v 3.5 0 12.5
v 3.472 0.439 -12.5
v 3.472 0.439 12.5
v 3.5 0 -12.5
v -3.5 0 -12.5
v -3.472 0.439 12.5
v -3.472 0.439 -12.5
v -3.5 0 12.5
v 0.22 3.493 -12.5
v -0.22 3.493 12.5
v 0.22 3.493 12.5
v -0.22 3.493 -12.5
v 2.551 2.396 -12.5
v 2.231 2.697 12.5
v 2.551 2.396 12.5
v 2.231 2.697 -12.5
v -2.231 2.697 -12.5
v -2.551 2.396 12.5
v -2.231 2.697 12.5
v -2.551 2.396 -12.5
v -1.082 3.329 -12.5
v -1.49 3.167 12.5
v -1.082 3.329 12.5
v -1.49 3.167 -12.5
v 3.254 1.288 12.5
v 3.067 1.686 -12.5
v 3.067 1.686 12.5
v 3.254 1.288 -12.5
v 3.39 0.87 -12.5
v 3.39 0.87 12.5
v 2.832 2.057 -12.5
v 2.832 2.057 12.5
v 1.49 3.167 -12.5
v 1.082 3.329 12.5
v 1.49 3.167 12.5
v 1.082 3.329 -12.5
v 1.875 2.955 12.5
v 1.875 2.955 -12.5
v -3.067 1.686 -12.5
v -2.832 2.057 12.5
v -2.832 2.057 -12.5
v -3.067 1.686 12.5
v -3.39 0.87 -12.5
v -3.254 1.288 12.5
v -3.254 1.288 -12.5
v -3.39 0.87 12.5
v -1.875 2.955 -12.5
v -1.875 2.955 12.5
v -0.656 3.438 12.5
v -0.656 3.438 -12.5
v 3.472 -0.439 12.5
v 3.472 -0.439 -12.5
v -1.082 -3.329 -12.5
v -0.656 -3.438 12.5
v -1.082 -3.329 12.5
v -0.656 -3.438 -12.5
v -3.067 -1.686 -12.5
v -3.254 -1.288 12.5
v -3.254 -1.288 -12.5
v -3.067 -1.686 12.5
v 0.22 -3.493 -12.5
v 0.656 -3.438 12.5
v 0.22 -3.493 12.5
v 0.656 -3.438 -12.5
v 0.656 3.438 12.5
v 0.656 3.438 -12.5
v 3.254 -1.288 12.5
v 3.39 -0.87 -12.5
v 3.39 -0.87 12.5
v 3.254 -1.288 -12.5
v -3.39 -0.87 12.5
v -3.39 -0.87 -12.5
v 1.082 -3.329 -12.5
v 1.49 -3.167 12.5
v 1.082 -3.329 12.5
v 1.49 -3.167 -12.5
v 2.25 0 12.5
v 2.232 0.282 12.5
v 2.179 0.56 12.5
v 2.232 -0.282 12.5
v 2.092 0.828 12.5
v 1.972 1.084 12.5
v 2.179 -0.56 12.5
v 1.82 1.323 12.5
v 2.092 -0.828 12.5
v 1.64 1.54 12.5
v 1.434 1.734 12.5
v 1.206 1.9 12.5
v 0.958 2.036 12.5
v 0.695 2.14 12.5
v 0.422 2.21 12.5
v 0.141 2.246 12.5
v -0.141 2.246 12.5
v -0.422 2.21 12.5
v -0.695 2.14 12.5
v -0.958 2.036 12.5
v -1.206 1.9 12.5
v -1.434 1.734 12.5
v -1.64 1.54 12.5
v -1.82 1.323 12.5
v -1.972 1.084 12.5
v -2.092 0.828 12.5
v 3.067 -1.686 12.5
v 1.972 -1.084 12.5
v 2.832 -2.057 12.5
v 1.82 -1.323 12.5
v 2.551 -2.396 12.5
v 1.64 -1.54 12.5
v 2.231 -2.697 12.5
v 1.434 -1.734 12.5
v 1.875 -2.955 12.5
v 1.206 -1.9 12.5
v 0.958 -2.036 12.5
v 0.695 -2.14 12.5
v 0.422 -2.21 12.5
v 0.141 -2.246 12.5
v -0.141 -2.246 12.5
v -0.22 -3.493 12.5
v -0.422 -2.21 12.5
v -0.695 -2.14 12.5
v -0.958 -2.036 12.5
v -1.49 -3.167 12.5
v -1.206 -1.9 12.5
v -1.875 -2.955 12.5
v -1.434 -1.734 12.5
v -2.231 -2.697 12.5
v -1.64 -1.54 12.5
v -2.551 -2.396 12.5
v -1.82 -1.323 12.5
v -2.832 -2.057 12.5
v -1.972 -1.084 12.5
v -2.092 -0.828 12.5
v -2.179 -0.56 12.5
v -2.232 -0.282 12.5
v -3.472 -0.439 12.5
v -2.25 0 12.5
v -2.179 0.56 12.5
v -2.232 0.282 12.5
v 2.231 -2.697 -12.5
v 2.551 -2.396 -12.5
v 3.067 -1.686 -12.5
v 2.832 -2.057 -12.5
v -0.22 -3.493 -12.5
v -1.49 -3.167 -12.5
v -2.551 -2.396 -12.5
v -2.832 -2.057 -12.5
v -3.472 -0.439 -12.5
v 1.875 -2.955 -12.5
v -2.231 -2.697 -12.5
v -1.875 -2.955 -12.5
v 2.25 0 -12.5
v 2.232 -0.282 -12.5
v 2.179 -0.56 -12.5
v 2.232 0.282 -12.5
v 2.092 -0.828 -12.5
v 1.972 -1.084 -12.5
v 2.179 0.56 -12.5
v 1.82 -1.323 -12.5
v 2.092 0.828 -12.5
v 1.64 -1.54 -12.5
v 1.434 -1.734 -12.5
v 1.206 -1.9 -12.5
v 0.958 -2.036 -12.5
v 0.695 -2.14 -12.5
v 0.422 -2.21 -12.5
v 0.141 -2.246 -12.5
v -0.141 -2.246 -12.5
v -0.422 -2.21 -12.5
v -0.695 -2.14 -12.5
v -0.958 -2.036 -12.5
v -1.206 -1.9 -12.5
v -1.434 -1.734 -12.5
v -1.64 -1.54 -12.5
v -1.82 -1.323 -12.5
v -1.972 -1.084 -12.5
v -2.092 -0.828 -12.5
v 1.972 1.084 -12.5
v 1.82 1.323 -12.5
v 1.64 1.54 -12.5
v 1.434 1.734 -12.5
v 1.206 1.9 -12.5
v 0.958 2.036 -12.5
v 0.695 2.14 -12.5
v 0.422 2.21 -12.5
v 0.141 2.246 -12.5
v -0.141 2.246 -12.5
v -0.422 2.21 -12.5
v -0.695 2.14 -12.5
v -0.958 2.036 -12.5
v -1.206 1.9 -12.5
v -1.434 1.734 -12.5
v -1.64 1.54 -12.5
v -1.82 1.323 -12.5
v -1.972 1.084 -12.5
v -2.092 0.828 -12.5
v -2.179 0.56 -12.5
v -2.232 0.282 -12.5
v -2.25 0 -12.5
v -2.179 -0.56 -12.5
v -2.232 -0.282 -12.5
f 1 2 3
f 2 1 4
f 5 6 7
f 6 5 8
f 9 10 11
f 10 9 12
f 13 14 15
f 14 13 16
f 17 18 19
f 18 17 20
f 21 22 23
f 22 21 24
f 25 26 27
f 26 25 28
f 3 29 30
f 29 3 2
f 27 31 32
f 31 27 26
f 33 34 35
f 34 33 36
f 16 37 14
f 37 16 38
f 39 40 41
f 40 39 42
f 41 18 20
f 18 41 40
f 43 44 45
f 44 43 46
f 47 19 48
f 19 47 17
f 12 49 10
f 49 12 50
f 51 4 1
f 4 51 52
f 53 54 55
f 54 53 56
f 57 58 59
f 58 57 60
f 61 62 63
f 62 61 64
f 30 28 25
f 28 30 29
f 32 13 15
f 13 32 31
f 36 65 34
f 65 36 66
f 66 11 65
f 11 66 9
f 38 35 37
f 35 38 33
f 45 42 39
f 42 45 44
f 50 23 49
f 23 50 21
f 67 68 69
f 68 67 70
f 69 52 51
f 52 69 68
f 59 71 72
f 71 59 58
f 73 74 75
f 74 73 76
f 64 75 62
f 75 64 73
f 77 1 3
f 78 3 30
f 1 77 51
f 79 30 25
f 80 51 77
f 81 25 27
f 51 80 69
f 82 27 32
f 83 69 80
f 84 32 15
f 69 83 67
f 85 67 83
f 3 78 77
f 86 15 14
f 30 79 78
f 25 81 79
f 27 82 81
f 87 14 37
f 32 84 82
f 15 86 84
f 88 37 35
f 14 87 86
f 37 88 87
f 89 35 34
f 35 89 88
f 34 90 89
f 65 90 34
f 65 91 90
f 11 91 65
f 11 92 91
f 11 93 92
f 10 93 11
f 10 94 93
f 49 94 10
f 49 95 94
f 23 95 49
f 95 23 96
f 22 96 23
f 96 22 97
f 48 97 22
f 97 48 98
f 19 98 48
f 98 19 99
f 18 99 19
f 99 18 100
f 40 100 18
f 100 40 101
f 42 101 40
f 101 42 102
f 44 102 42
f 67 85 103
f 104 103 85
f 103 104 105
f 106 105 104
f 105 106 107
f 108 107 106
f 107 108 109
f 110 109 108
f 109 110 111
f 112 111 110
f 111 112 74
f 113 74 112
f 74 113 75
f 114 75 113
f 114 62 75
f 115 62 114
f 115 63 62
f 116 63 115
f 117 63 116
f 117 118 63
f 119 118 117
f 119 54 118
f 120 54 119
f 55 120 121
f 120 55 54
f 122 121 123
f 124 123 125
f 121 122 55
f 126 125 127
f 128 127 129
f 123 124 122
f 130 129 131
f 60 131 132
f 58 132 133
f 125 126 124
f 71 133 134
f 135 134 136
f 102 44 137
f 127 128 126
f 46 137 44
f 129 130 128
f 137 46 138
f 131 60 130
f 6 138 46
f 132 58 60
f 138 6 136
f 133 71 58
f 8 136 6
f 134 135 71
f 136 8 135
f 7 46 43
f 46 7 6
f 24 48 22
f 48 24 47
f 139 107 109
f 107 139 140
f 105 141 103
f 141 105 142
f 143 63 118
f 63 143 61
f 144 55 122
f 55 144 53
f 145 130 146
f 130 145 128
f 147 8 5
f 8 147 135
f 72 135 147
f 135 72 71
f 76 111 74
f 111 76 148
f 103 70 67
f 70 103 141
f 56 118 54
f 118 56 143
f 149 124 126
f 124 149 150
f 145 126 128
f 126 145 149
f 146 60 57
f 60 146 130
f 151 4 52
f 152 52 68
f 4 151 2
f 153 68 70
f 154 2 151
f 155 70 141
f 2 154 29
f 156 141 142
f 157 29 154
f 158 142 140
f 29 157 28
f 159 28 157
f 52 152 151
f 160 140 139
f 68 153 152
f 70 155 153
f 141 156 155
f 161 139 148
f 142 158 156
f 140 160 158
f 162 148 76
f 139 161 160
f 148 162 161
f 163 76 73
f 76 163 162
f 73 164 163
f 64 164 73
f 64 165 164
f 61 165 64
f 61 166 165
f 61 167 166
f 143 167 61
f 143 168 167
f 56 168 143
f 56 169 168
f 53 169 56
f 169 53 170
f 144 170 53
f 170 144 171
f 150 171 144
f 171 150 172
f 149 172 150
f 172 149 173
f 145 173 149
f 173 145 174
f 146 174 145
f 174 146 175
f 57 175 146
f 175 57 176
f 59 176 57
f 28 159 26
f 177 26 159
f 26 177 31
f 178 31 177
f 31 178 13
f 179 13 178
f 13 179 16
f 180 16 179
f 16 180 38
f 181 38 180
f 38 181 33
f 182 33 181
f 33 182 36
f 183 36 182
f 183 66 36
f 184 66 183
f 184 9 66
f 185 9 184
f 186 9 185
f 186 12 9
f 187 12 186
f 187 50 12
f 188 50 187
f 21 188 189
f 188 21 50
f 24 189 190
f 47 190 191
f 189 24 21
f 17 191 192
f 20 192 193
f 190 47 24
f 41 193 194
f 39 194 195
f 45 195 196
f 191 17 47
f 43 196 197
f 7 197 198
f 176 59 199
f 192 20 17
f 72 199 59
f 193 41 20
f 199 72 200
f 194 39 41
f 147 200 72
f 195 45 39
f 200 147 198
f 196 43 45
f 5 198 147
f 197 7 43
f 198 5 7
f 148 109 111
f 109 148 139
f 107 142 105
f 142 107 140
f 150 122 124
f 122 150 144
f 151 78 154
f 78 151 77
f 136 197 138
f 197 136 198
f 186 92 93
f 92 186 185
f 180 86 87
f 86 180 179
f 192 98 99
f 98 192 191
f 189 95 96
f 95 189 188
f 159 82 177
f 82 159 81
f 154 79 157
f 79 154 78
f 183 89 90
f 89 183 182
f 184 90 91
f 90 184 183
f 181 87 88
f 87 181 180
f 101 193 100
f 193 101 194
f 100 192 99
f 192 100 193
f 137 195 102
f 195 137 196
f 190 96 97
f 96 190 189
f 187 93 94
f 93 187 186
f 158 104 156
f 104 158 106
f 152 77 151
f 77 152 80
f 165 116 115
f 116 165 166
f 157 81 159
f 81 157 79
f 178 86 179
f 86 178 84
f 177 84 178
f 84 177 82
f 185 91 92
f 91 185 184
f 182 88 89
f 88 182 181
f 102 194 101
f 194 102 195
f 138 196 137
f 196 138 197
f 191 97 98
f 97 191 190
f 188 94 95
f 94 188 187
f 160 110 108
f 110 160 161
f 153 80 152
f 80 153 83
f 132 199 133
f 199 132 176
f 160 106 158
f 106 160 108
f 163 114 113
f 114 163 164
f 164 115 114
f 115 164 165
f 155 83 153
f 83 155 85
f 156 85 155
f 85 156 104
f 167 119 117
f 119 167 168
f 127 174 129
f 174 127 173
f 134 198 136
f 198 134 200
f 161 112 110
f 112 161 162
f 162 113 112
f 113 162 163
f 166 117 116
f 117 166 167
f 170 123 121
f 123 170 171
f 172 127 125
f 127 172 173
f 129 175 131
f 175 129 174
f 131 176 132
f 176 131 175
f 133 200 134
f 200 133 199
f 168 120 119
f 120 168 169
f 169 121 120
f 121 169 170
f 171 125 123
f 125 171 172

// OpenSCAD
$fn = 50;


difference() {
	union() {
		translate(v = [0, 0, -12.5000000000]) {
			cylinder(h = 25, r = 3.5000000000);
		}
	}
	union() {
		translate(v = [0, 0, -100.0000000000]) {
			cylinder(h = 200, r = 2.2500000000);
		}
	}
}
